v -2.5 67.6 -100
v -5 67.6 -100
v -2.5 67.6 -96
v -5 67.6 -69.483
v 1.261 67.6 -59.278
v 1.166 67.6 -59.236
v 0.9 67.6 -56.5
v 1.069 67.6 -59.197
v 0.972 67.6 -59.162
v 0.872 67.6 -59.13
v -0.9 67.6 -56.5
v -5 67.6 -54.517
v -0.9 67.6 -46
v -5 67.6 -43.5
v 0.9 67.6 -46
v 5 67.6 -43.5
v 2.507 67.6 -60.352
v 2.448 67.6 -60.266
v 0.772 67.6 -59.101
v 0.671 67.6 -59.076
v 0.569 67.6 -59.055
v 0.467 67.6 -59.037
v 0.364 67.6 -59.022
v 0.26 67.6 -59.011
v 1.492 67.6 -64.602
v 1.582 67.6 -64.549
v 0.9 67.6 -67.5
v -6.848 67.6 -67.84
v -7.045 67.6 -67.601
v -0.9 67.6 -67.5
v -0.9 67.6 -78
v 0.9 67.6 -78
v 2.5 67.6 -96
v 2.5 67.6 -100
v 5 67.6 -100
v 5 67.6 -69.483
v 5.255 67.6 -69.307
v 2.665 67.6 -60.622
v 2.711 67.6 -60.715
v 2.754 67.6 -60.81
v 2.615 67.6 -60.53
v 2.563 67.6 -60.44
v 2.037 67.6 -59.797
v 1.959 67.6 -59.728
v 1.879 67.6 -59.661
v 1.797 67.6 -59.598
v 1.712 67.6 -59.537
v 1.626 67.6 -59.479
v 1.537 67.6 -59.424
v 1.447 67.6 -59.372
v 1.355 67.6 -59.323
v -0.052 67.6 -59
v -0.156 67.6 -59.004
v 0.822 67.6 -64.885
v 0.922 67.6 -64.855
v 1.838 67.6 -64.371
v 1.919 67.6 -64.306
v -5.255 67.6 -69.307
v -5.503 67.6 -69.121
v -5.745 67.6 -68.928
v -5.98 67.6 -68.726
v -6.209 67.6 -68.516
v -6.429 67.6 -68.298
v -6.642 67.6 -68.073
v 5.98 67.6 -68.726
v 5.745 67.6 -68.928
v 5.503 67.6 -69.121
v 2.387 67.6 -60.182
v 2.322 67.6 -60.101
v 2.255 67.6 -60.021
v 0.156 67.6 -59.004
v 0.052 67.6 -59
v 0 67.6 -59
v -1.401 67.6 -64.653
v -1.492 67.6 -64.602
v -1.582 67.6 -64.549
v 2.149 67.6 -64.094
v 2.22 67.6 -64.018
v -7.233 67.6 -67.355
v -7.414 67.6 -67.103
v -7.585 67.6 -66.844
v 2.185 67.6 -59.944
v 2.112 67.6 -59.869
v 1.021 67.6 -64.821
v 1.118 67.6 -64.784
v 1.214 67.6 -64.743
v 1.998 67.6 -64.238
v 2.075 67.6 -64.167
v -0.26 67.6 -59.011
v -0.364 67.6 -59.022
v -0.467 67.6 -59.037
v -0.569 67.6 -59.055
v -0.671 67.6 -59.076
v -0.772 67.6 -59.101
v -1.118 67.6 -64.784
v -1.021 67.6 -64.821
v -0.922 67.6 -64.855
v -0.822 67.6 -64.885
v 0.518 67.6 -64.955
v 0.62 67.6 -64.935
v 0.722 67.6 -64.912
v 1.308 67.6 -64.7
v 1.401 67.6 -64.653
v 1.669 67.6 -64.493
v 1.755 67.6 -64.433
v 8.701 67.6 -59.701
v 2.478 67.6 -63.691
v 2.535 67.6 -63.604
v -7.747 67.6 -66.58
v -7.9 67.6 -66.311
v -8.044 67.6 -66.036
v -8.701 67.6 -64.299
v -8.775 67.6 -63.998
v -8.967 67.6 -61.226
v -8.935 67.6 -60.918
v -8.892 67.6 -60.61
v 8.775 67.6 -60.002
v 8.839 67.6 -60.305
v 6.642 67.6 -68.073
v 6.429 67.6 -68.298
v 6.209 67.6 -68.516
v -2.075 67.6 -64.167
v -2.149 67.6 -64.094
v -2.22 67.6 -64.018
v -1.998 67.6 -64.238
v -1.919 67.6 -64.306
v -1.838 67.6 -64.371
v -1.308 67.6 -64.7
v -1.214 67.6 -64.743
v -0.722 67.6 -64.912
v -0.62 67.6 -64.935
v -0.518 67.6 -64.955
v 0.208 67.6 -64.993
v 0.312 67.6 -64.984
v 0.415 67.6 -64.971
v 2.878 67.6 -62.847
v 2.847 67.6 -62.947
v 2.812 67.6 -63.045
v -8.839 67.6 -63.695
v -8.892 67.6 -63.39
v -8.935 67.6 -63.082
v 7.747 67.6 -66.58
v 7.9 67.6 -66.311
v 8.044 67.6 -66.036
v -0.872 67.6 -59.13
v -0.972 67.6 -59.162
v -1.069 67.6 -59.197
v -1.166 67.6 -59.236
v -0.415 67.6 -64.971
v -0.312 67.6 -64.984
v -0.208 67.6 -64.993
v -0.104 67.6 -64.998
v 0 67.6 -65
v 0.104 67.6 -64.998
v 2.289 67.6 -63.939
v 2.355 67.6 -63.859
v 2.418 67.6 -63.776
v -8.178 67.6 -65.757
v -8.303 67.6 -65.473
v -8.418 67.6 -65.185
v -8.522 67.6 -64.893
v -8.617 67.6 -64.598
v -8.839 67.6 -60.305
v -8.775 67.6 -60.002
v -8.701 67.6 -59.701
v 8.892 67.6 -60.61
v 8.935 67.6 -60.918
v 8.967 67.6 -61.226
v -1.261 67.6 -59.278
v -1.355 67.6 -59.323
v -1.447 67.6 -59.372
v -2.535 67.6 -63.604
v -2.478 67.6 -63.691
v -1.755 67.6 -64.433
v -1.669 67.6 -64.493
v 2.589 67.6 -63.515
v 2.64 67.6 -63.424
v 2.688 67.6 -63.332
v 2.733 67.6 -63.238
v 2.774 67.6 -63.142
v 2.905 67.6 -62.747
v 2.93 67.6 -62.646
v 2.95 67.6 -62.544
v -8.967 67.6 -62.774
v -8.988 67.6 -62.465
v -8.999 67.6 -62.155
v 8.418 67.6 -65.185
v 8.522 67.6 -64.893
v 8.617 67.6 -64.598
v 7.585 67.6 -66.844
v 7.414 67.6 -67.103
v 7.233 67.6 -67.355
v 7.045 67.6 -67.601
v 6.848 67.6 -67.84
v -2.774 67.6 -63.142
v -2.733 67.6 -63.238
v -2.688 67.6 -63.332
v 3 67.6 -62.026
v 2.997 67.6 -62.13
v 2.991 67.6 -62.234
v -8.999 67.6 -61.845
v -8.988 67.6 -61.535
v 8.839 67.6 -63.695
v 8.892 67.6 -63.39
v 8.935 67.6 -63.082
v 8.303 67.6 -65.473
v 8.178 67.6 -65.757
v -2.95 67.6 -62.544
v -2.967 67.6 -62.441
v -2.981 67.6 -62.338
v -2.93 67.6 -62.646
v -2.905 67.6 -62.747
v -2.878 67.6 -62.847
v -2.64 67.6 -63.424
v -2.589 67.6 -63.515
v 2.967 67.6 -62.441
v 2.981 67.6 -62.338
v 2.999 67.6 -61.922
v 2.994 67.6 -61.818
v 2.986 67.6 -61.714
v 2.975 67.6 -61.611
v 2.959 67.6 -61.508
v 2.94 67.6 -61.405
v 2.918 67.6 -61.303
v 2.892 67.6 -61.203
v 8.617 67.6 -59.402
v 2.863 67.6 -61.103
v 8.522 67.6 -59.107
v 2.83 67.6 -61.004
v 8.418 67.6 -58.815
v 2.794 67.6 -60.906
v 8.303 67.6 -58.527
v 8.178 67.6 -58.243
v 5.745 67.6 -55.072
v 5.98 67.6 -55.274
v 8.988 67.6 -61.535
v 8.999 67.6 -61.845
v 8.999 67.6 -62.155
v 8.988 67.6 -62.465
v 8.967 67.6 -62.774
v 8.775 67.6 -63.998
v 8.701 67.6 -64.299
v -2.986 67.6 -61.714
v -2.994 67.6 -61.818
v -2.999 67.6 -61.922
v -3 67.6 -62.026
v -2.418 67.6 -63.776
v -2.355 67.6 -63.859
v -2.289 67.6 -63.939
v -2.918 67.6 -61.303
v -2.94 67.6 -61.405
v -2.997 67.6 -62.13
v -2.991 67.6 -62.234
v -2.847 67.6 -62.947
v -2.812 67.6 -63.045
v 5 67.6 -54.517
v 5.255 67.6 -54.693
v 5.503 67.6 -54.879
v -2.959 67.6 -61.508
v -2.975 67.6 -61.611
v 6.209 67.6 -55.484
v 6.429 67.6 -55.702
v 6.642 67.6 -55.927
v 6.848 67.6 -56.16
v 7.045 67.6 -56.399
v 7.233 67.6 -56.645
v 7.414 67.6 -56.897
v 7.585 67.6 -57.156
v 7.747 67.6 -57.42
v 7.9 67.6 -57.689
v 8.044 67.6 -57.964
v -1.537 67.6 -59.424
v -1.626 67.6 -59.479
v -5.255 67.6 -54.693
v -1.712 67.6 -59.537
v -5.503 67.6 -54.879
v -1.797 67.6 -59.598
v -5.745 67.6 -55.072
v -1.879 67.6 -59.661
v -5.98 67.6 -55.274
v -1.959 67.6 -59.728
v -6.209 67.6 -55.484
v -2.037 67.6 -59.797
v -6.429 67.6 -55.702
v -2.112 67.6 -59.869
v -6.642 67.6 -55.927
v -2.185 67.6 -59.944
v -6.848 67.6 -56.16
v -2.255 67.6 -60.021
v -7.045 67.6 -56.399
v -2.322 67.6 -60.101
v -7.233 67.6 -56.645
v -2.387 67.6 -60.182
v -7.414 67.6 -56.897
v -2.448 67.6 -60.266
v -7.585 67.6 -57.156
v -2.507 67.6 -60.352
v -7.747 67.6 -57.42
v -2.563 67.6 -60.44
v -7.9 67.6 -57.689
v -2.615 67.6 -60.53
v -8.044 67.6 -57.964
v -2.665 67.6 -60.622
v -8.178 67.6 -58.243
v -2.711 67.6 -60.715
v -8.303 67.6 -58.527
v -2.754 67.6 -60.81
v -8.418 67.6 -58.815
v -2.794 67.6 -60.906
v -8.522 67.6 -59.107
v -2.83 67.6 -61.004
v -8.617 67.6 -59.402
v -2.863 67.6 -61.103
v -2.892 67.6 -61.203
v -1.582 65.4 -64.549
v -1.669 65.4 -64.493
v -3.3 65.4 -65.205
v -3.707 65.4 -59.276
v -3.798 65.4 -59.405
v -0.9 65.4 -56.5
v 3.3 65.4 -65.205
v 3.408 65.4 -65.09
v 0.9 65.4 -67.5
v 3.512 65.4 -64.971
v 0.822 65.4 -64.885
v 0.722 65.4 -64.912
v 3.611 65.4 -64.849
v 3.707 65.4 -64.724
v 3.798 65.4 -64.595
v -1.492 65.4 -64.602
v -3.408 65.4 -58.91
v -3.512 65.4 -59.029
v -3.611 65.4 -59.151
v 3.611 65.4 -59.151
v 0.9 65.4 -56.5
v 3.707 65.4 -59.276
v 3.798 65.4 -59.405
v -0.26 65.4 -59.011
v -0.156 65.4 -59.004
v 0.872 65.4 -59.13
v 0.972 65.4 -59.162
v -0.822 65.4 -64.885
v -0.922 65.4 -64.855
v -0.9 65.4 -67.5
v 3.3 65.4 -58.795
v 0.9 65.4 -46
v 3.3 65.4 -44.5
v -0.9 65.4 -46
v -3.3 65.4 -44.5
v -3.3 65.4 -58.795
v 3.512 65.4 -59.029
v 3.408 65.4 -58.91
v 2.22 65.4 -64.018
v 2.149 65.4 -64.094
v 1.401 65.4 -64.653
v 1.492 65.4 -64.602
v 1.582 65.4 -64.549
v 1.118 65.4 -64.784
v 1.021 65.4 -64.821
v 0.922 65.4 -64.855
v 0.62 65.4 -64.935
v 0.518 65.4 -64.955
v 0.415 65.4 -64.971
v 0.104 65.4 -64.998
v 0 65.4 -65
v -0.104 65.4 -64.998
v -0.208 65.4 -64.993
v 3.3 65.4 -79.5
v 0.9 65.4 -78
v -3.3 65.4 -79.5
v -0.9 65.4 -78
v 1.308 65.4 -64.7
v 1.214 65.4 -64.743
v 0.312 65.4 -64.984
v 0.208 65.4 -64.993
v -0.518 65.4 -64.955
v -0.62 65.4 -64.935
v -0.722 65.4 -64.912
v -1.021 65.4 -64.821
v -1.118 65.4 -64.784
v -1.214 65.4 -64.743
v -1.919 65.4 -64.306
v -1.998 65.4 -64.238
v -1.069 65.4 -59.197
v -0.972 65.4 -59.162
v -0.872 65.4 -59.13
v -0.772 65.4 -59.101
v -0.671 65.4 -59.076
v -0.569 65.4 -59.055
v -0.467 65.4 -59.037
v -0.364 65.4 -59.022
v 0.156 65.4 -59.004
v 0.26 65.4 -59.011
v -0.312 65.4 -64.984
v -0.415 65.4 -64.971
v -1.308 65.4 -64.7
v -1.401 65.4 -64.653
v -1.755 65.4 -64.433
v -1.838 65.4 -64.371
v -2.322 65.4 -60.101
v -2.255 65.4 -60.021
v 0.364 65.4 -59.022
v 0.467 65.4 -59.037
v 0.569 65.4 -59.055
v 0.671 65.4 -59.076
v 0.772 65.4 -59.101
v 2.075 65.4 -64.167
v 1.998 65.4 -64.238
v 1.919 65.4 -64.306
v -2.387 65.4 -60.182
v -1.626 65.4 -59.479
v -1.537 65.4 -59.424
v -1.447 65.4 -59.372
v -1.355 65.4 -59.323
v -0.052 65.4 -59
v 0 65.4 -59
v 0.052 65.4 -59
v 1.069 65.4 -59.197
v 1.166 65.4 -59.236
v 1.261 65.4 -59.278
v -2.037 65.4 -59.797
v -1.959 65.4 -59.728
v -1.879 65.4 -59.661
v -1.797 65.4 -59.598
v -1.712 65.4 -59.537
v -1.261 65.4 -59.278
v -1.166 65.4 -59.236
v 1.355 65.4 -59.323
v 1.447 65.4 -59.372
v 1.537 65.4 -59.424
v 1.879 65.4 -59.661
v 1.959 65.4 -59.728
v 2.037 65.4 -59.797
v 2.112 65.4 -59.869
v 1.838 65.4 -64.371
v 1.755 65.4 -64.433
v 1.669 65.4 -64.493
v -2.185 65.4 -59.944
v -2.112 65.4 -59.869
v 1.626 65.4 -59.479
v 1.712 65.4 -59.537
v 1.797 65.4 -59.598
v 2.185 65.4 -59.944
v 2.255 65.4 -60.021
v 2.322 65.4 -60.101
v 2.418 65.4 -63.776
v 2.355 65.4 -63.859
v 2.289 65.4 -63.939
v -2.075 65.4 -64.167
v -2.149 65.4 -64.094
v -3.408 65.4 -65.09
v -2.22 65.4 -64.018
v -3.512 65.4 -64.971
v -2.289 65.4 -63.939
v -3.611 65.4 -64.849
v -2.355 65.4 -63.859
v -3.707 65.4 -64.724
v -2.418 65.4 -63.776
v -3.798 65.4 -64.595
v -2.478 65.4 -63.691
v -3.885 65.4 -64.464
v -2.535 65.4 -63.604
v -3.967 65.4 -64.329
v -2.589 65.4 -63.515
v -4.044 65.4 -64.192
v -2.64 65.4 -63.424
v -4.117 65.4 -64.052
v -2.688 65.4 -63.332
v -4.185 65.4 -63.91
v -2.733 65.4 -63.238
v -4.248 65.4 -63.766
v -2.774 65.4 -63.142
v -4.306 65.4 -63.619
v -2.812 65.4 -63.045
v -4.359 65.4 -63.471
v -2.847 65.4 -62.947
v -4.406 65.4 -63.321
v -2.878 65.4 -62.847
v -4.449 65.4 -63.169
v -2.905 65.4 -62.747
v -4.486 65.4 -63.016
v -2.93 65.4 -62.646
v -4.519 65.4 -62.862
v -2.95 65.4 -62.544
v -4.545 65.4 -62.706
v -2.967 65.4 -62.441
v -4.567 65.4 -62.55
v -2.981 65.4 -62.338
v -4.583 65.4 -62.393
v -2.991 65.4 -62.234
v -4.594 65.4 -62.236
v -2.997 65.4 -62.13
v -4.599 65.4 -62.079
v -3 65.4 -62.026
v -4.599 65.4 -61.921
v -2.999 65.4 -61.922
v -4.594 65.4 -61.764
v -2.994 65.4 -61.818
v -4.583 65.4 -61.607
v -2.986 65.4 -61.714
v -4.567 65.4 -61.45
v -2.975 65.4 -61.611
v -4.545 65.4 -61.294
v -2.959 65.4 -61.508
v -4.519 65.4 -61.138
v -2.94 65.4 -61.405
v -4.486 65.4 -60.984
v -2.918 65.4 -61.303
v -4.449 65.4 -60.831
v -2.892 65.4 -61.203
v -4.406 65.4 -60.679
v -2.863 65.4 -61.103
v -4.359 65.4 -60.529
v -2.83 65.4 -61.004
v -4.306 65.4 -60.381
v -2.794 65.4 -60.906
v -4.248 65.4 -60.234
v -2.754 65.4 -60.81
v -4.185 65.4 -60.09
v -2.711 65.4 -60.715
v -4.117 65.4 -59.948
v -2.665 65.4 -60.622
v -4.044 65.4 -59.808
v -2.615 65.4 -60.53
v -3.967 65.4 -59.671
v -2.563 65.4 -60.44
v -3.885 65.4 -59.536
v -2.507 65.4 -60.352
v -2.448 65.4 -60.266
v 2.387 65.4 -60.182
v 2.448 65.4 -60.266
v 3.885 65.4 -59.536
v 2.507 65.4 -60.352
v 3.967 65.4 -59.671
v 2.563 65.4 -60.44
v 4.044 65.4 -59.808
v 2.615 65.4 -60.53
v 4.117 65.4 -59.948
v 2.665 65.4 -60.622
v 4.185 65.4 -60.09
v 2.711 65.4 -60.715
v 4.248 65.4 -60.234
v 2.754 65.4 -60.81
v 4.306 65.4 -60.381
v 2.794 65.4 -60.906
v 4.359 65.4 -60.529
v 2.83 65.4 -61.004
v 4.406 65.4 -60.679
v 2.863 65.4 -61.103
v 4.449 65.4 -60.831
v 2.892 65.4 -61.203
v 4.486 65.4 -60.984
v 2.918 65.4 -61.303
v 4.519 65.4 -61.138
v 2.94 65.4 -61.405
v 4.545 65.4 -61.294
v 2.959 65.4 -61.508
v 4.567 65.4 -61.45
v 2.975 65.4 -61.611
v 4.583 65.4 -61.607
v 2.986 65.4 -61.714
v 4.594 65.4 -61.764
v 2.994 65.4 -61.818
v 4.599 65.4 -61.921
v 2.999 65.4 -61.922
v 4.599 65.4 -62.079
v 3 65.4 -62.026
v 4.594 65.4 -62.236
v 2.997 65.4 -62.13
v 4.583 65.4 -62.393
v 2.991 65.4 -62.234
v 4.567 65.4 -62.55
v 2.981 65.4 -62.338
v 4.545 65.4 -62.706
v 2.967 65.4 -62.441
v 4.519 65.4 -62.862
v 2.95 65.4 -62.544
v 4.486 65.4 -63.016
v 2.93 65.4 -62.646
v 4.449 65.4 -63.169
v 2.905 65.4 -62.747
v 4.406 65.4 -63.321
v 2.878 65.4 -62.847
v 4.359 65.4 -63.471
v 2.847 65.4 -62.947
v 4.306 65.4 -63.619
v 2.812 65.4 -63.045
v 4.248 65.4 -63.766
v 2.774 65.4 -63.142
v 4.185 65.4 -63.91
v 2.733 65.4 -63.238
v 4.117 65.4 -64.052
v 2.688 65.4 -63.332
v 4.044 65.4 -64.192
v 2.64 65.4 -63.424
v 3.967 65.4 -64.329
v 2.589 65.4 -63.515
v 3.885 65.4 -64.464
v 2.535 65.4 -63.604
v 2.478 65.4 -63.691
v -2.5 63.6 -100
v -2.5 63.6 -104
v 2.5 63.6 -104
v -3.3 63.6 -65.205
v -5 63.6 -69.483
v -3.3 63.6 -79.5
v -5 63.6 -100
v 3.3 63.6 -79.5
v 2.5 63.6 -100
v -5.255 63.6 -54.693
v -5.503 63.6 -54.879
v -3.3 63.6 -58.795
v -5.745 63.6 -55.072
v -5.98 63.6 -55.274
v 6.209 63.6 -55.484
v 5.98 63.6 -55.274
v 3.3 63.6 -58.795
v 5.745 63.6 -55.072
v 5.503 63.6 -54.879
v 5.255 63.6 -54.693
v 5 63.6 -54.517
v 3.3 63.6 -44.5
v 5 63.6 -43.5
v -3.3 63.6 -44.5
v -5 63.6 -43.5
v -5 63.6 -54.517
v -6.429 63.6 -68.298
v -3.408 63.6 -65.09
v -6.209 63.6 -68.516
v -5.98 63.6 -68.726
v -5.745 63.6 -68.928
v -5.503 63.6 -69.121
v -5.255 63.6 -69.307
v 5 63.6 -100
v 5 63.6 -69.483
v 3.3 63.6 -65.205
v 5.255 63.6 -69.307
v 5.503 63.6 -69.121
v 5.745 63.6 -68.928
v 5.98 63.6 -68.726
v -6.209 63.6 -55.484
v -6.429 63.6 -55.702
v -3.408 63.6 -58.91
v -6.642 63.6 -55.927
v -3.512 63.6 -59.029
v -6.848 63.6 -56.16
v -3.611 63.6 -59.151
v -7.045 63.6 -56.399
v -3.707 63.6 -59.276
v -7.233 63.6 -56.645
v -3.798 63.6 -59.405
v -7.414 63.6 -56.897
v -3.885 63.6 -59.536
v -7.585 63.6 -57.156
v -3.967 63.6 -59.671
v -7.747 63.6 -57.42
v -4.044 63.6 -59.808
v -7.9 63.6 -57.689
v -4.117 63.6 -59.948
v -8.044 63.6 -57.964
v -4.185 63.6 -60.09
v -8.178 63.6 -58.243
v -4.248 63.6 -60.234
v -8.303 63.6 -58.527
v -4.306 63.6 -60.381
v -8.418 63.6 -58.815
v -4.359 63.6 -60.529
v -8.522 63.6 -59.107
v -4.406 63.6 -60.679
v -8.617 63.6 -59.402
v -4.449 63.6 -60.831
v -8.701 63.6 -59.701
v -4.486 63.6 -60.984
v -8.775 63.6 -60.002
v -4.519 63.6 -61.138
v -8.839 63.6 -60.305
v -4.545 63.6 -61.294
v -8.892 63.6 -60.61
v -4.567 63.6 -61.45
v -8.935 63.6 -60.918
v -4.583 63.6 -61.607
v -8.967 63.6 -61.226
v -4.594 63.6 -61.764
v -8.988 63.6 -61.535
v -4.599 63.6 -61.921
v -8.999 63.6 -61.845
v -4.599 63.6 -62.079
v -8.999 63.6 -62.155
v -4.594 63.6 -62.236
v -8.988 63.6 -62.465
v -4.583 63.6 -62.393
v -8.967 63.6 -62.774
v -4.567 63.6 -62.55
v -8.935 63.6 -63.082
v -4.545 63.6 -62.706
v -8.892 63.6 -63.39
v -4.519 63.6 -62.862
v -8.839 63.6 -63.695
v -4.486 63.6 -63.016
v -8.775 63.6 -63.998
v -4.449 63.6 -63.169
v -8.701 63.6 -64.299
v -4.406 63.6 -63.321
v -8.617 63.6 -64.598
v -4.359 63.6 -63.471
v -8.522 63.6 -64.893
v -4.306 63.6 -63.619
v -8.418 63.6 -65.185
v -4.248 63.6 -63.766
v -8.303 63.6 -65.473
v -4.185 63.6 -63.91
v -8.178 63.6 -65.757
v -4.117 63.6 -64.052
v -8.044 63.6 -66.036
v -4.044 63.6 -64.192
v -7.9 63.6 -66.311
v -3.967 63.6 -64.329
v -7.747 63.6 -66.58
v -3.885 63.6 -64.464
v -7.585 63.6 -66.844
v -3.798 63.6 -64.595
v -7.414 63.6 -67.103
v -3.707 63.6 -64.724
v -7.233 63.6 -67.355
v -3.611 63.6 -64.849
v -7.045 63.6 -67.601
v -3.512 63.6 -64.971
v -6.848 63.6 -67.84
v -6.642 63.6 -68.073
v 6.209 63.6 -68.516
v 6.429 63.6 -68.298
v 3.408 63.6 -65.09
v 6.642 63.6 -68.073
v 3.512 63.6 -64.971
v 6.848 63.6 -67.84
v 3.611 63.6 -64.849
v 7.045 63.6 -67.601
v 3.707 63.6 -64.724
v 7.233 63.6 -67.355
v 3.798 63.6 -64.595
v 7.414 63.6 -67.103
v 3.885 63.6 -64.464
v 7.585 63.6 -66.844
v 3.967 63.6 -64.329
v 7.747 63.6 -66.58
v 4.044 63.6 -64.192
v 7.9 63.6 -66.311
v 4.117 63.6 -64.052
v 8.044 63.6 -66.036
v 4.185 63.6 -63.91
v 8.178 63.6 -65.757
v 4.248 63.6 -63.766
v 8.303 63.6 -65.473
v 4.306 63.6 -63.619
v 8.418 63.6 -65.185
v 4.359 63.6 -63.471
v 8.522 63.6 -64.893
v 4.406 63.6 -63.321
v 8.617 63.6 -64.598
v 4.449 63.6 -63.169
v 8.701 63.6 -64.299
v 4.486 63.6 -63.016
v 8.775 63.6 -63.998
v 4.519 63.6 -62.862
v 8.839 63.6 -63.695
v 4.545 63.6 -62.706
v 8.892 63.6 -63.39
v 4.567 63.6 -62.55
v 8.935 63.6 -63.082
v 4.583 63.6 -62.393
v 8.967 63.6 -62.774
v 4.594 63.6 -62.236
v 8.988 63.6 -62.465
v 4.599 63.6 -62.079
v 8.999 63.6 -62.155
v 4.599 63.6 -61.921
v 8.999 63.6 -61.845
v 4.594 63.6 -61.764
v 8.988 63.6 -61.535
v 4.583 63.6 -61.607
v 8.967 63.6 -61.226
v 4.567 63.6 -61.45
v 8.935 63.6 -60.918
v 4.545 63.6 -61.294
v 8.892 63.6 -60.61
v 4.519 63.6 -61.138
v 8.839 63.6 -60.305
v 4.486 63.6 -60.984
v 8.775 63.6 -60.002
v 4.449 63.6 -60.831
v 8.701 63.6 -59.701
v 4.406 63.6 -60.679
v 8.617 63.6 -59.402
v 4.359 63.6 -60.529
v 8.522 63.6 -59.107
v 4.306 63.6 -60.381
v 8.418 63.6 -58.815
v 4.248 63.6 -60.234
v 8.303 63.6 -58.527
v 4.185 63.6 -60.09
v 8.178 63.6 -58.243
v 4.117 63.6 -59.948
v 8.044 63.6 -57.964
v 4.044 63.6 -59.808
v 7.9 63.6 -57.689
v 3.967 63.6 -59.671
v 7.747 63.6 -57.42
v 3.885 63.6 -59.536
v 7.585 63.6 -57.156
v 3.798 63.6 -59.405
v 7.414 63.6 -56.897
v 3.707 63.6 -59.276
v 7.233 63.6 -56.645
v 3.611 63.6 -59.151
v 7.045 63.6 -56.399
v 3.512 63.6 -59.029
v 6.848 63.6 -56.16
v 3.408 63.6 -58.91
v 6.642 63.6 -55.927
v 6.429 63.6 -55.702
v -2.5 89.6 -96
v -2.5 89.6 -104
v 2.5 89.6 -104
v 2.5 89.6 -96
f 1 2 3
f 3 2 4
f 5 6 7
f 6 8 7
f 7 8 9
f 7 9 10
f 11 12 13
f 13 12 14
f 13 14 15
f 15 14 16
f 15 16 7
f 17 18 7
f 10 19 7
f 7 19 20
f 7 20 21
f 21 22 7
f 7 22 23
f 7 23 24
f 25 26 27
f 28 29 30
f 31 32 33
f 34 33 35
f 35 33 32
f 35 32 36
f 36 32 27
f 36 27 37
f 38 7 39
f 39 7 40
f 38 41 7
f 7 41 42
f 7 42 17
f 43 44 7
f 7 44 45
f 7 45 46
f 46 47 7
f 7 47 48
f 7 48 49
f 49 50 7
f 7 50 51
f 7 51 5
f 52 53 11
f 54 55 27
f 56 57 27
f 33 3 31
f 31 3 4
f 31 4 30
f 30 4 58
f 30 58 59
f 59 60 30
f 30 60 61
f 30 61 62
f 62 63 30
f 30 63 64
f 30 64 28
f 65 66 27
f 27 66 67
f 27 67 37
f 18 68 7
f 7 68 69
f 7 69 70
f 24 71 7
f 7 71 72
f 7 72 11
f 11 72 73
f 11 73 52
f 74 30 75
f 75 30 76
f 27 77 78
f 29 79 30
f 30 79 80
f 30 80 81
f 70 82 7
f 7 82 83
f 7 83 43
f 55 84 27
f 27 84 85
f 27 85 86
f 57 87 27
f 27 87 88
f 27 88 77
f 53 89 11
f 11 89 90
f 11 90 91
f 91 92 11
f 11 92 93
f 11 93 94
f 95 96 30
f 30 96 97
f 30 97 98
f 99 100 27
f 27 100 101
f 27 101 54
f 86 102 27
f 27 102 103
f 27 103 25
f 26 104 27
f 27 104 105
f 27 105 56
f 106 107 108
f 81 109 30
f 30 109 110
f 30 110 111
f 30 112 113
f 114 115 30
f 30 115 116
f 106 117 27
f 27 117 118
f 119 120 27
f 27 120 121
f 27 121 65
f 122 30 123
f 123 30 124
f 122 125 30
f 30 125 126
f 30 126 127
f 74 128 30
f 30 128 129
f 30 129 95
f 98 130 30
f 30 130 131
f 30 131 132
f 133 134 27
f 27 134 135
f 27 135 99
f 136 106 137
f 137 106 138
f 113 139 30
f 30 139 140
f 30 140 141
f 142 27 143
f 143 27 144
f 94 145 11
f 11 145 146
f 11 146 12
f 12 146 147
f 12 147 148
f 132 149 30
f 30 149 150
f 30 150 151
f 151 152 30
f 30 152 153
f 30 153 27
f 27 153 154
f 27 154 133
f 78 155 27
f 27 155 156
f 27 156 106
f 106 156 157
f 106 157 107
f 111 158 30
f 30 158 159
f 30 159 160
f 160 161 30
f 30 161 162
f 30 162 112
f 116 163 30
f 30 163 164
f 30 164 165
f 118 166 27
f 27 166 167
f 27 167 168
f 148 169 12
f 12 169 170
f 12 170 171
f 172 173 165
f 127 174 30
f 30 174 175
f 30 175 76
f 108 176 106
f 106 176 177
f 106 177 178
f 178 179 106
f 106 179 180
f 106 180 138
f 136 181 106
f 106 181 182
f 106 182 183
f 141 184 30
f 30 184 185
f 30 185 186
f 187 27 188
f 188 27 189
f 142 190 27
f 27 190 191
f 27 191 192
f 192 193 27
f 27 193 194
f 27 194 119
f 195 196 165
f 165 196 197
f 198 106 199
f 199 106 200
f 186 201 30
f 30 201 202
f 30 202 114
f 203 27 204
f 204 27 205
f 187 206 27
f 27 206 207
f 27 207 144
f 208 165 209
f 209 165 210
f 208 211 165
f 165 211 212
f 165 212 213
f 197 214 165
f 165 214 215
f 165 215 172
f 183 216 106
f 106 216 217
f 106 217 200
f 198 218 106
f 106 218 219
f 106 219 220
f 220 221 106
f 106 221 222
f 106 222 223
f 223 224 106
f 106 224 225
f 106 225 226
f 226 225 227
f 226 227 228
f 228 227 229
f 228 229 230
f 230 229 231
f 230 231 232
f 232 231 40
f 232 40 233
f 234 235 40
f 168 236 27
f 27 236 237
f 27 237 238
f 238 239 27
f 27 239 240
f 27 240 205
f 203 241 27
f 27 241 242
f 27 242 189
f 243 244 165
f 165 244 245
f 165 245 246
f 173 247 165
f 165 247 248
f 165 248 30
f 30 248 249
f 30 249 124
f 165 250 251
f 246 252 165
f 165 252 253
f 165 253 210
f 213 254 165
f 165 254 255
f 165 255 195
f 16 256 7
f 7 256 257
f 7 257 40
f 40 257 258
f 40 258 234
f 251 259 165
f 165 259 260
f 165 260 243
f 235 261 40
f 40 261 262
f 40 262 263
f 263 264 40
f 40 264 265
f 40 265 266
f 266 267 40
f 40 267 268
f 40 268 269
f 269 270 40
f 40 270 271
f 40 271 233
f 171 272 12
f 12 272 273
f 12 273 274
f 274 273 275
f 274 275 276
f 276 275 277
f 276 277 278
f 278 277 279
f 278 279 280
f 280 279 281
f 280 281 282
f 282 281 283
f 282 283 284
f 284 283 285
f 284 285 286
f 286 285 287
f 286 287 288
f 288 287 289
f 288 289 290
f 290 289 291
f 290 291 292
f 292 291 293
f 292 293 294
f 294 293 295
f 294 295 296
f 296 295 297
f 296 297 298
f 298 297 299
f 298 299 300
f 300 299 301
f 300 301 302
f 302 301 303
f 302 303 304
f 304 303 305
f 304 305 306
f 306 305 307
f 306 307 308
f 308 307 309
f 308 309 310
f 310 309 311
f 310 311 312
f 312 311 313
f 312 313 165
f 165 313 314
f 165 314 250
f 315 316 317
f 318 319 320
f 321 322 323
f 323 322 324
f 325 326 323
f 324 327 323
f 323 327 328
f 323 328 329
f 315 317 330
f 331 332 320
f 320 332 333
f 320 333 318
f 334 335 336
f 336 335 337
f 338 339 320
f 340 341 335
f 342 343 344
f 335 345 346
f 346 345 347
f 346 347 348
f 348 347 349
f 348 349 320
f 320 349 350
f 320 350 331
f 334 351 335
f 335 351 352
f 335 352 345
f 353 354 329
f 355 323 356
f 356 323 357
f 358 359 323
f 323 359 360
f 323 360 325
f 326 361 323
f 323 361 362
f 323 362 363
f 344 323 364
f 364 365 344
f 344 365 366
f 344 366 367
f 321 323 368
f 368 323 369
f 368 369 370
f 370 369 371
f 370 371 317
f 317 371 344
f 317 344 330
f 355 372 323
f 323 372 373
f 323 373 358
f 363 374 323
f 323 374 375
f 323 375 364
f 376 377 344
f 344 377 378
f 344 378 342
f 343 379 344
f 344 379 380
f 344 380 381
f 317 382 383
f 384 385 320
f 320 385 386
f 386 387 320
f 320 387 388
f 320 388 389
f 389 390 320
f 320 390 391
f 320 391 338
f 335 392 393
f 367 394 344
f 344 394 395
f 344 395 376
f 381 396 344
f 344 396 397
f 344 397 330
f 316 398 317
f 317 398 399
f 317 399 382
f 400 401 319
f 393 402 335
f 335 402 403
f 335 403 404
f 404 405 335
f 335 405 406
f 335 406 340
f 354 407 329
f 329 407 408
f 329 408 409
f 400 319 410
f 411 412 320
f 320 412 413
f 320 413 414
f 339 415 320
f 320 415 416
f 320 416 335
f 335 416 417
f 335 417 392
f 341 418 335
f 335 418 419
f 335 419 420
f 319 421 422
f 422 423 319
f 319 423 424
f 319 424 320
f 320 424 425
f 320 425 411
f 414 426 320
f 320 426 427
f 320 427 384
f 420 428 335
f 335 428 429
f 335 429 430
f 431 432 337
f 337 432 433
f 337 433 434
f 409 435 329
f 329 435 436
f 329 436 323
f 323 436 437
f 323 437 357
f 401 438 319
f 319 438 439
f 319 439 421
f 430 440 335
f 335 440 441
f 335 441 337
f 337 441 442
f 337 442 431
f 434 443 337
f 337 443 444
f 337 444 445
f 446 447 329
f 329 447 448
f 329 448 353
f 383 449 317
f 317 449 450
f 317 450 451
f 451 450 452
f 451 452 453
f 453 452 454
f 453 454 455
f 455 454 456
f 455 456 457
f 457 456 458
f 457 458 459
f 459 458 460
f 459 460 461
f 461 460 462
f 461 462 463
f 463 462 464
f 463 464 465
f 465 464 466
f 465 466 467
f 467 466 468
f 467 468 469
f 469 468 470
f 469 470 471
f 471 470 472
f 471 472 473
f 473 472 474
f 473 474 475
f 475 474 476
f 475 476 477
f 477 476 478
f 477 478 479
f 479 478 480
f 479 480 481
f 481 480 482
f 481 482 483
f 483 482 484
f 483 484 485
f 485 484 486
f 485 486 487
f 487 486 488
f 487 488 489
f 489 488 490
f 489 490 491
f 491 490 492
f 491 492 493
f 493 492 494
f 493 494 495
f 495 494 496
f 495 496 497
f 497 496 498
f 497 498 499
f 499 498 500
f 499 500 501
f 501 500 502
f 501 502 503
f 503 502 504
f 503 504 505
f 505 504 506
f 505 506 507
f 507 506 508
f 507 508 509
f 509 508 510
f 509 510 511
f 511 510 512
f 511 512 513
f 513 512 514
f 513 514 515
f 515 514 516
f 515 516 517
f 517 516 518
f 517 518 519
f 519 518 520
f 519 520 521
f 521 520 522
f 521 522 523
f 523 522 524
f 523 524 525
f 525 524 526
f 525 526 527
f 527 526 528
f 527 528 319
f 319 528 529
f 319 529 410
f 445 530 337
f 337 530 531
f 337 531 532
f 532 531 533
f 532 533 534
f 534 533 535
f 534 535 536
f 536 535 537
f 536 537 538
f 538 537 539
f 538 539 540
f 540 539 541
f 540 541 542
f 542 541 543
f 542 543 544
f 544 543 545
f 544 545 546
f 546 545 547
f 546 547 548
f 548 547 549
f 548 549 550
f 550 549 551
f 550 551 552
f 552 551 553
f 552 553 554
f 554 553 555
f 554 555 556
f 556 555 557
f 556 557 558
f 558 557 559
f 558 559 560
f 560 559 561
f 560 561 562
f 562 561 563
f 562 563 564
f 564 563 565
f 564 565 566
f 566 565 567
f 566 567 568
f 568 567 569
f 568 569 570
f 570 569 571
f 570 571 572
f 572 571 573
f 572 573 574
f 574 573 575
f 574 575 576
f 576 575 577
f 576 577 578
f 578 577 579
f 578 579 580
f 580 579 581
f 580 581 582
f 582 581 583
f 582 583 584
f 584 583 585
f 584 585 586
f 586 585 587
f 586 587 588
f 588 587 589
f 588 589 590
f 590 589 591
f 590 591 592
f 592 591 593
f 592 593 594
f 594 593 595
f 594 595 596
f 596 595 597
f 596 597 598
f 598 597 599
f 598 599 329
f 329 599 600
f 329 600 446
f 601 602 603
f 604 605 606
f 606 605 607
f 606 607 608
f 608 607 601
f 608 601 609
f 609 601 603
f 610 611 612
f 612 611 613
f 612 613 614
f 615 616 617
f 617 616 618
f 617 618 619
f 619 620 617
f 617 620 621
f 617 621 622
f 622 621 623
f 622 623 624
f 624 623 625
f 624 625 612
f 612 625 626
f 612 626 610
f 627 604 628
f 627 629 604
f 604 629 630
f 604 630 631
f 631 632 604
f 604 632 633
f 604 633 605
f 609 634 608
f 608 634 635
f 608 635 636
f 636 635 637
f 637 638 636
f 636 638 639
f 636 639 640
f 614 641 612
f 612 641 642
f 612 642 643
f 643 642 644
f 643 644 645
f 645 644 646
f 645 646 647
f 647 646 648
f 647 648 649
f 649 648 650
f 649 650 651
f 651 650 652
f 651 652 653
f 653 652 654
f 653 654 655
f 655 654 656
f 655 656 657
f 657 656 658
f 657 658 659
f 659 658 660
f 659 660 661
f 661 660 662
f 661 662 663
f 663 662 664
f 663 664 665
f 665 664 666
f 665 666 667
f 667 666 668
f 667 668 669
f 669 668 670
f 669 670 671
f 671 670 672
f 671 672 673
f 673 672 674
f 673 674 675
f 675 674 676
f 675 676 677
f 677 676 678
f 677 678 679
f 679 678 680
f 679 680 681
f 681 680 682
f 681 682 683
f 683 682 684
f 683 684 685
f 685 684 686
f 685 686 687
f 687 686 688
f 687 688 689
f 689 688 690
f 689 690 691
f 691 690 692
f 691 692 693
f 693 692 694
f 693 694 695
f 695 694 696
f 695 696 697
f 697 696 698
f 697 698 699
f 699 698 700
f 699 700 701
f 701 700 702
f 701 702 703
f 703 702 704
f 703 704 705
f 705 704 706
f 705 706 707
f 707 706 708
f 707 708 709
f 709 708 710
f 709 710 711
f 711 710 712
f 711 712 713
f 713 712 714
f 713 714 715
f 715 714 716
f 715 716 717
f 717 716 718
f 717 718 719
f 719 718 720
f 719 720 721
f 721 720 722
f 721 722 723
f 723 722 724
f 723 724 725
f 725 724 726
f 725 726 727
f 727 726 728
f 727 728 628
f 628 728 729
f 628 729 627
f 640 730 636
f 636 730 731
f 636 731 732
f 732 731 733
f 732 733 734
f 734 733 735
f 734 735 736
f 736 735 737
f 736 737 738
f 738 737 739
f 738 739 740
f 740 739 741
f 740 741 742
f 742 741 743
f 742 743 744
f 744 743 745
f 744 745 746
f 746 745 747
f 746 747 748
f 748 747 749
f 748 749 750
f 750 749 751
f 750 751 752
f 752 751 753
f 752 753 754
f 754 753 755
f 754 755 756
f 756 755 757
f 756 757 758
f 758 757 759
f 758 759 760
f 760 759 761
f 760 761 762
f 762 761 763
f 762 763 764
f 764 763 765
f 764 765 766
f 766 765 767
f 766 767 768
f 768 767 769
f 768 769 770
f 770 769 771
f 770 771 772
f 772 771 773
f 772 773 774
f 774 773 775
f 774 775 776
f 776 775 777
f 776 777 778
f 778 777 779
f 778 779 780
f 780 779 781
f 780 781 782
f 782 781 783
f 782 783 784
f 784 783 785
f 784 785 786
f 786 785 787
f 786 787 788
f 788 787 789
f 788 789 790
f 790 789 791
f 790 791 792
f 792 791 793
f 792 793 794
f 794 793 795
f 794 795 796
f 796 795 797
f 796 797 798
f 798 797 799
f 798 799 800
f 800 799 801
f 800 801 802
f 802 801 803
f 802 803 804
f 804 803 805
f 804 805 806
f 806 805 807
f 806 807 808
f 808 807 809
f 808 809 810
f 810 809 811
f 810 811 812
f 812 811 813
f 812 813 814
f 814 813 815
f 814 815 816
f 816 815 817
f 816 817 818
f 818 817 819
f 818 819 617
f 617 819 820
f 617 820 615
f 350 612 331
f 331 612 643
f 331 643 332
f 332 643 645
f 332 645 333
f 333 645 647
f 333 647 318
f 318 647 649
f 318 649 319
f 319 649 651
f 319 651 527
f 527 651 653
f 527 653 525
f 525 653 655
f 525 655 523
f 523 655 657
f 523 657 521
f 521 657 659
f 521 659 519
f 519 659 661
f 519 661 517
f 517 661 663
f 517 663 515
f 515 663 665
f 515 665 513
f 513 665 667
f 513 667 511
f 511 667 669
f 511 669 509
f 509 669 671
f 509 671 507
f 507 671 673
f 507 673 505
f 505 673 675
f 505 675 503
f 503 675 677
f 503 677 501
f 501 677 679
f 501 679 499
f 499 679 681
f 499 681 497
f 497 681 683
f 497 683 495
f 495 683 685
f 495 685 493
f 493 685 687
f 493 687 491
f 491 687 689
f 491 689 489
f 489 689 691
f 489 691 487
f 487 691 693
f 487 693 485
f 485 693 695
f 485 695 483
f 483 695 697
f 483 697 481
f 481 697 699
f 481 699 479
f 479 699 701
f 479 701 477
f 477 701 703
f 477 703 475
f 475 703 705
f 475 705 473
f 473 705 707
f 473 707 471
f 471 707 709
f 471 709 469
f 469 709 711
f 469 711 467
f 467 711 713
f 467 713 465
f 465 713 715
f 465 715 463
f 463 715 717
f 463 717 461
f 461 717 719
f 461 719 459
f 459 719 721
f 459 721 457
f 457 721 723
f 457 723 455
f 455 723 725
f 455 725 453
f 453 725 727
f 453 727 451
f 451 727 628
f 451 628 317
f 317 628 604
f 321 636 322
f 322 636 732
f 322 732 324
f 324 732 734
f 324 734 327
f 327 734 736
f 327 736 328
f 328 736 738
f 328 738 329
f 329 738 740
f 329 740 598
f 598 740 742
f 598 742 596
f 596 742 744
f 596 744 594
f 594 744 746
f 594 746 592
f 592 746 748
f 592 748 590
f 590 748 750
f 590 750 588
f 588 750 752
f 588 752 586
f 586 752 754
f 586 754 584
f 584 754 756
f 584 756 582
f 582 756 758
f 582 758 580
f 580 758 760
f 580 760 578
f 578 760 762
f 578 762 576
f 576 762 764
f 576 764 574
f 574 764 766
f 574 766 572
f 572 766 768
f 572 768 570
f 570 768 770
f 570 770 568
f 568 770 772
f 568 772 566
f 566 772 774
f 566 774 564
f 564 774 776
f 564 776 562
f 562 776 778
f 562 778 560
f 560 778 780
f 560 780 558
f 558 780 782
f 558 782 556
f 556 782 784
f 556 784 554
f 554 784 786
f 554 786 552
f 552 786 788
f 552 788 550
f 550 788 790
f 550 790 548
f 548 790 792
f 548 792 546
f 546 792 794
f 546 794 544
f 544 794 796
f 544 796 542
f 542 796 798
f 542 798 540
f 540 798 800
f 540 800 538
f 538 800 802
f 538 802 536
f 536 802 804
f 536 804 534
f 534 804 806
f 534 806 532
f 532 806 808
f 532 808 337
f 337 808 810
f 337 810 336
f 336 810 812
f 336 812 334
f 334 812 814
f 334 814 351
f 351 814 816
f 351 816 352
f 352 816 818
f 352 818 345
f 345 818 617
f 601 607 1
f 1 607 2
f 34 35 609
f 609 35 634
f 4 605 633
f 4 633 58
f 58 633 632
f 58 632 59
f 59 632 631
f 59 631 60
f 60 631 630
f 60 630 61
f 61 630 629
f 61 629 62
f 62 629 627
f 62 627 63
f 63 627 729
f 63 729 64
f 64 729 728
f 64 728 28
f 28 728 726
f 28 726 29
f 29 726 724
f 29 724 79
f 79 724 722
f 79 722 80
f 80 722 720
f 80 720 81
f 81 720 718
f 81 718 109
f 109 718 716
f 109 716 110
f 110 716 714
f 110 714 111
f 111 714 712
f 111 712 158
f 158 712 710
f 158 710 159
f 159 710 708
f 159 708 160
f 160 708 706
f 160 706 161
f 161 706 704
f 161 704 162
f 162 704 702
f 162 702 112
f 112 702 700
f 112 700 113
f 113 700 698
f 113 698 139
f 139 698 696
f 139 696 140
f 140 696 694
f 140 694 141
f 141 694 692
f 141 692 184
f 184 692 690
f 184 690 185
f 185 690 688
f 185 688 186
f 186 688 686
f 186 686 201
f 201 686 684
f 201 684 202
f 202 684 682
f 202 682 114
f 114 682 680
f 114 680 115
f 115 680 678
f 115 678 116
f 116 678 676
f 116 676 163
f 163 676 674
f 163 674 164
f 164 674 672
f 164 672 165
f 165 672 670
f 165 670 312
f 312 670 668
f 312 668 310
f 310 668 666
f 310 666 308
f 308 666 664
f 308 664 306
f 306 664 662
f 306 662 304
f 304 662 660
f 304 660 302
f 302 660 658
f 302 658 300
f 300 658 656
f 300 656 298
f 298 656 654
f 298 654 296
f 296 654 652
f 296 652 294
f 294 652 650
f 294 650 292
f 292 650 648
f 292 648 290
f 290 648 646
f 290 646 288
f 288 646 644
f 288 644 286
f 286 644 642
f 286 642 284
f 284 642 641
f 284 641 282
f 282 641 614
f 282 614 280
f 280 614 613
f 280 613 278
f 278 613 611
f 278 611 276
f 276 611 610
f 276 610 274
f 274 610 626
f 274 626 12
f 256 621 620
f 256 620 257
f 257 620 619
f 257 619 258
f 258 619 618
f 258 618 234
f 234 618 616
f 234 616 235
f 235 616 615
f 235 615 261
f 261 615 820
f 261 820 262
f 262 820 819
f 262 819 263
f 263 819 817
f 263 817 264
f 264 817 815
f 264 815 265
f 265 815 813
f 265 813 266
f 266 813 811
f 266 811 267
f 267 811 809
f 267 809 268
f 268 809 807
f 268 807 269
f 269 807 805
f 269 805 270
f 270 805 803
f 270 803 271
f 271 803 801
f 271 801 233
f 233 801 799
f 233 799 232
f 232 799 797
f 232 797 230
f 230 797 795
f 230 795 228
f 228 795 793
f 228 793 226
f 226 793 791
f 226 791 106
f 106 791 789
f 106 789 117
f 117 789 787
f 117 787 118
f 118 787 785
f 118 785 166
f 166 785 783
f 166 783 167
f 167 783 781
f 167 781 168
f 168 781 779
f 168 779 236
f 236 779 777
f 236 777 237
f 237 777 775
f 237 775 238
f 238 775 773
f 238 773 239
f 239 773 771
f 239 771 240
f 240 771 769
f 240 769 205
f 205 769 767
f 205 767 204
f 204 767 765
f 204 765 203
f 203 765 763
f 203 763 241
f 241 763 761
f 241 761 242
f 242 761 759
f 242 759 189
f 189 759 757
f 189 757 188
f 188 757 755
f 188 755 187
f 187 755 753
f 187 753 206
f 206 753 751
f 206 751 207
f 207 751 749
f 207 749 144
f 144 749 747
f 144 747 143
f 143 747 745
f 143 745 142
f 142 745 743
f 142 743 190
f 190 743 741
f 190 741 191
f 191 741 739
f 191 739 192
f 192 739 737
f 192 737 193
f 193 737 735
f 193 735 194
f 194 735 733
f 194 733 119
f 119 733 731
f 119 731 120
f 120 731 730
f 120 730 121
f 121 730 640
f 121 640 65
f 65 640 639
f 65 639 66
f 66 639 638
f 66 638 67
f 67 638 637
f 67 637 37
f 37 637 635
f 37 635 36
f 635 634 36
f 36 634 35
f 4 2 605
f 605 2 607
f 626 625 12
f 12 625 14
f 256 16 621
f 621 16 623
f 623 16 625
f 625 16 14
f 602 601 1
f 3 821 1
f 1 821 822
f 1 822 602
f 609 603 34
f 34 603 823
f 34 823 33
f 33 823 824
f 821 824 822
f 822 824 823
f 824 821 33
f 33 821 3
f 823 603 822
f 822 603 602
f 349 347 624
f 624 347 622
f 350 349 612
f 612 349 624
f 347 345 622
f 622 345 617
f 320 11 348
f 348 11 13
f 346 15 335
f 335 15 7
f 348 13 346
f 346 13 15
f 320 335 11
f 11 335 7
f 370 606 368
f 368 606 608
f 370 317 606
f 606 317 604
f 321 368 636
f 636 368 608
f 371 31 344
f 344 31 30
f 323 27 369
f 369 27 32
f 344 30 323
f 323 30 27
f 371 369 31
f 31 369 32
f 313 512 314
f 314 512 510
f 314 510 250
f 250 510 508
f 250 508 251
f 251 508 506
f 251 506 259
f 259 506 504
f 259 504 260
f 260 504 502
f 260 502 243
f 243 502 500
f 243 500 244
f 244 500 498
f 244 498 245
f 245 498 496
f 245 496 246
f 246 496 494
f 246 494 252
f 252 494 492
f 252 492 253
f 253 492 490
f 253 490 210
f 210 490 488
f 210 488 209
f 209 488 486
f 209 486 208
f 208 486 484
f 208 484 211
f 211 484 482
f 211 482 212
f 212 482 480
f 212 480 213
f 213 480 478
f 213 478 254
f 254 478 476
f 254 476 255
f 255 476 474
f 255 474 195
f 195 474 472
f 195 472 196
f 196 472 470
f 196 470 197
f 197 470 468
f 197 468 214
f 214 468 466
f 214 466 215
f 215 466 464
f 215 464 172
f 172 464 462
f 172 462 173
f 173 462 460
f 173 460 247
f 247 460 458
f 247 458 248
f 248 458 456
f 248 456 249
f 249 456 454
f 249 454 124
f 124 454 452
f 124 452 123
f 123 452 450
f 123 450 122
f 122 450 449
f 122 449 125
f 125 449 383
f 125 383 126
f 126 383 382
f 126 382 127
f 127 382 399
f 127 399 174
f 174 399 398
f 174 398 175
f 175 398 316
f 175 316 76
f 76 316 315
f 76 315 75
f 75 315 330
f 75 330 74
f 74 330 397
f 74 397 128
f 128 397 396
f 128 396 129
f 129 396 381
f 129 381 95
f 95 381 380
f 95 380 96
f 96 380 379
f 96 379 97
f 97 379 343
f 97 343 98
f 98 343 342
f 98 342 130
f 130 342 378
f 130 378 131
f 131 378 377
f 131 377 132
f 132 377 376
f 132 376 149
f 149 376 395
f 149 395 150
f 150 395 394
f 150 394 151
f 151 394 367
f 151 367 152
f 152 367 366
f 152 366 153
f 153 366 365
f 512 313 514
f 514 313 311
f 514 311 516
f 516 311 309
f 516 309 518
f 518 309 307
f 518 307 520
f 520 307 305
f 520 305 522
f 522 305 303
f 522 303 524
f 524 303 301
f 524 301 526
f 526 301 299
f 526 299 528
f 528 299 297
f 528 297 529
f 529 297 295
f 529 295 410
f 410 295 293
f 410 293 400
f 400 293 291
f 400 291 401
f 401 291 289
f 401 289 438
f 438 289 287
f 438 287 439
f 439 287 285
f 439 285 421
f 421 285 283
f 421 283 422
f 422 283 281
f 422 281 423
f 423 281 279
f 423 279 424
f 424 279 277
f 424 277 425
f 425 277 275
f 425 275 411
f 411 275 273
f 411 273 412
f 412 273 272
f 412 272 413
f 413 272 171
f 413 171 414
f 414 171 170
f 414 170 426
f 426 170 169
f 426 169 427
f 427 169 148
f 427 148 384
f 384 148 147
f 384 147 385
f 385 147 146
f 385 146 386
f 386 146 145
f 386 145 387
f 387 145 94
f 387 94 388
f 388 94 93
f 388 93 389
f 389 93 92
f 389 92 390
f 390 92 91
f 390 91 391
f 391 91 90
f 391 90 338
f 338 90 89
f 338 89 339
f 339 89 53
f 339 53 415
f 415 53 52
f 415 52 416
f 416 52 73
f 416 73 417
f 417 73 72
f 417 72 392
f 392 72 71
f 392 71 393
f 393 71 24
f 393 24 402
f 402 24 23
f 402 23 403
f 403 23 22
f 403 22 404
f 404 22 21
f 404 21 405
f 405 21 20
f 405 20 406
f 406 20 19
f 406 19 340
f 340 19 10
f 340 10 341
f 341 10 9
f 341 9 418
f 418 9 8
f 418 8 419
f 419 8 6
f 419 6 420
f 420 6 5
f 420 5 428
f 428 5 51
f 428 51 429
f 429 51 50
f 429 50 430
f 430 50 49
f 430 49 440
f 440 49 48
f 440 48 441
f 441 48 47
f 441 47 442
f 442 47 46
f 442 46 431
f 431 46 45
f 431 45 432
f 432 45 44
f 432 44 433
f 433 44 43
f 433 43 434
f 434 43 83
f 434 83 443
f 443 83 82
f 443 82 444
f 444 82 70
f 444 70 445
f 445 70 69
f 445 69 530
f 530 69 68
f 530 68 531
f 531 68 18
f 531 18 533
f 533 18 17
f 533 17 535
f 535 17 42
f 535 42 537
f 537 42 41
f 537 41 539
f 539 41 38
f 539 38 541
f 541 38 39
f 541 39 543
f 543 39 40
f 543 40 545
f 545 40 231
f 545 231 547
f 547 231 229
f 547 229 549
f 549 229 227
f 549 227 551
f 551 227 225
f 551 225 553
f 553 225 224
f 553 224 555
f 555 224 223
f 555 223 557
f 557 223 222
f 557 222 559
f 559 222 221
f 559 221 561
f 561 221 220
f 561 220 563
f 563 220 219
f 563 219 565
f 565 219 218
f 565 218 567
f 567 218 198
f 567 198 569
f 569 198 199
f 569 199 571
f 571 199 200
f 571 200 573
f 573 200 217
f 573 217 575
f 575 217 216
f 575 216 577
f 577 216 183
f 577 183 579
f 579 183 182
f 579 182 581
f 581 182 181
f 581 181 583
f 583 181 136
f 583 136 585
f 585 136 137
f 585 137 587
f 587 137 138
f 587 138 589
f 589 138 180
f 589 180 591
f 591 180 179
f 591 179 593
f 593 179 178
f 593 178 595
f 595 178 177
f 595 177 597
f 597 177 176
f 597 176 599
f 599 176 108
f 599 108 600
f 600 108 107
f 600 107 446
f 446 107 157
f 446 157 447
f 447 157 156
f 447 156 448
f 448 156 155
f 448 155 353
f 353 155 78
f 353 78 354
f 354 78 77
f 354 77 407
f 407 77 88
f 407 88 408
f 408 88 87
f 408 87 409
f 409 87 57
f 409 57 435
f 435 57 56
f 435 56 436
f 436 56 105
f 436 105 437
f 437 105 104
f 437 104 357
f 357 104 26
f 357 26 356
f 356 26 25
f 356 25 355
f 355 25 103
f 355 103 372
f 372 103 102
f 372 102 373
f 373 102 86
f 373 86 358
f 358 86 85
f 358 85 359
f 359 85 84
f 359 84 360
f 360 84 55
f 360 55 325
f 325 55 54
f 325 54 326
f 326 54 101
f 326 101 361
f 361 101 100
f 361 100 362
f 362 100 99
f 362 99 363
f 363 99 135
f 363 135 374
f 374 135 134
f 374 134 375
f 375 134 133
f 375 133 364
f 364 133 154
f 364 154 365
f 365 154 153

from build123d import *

# Parameters (mm, degrees)
BOSS_EXTRUDE1_START = 63.6
SKETCH1_R           = 9
BOSS_EXTRUDE1_DEPTH = 4
BOSS_EXTRUDE2_START = -100
SKETCH2_W           = 10
SKETCH2_H           = 4
BOSS_EXTRUDE2_DEPTH = 56.5
BOSS_EXTRUDE3_START = -104
SKETCH3_W           = 5
SKETCH3_H           = 26
BOSS_EXTRUDE3_DEPTH = 8
BOSS_EXTRUDE4_START = 63.1
SKETCH4_R           = 4.6
BOSS_EXTRUDE4_DEPTH = 2.3
BOSS_EXTRUDE5_START = -62
SKETCH5_W           = 6.6
SKETCH5_H           = 2.3
BOSS_EXTRUDE5_DEPTH = 17.5
BOSS_EXTRUDE6_START = -56.5
SKETCH6_W           = 1.8
SKETCH6_H           = 6
BOSS_EXTRUDE6_DEPTH = 10.5
BOSS_EXTRUDE7_START = -79.5
SKETCH7_W           = 6.6
SKETCH7_H           = 2.3
BOSS_EXTRUDE7_DEPTH = 17.5
BOSS_EXTRUDE8_START = -78
SKETCH8_W           = 1.8
SKETCH8_H           = 6
BOSS_EXTRUDE8_DEPTH = 10.5
BOSS_EXTRUDE9_START = 62.6
SKETCH9_R           = 3
BOSS_EXTRUDE9_DEPTH = 6


with BuildPart() as part:
    # Sketch1 → Boss-Extrude1 (new body)
    with BuildSketch(Plane(origin=(0, 0, 0), x_dir=(1, 0, 0), z_dir=(0, 1, 0)).offset(BOSS_EXTRUDE1_START)):
        with Locations(Location((0, 62, 0), (0, 0, 270))):
            Circle(SKETCH1_R)
    extrude(amount=BOSS_EXTRUDE1_DEPTH)

    # Sketch2 → Boss-Extrude2 (add)
    with BuildSketch(Plane.XY.offset(BOSS_EXTRUDE2_START)):
        with Locations((0, 65.6)):
            Rectangle(SKETCH2_W, SKETCH2_H)
    extrude(amount=BOSS_EXTRUDE2_DEPTH)

    # Sketch3 → Boss-Extrude3 (add)
    with BuildSketch(Plane.XY.offset(BOSS_EXTRUDE3_START)):
        with Locations((0, 76.6)):
            Rectangle(SKETCH3_W, SKETCH3_H)
    extrude(amount=BOSS_EXTRUDE3_DEPTH)


with BuildPart() as body_2:
    # Sketch4 → Boss-Extrude4 (new body)
    with BuildSketch(Plane(origin=(0, 0, 0), x_dir=(1, 0, 0), z_dir=(0, 1, 0)).offset(BOSS_EXTRUDE4_START)):
        with Locations(Location((0, 62, 0), (0, 0, 270))):
            Circle(SKETCH4_R)
    extrude(amount=BOSS_EXTRUDE4_DEPTH)


with BuildPart() as part_1:
    add(part.part)

    # Combine1: cut body 2
    add(body_2.part, mode=Mode.SUBTRACT)


with BuildPart() as body_2_2:
    # Sketch5 → Boss-Extrude5 (new body)
    with BuildSketch(Plane.XY.offset(BOSS_EXTRUDE5_START)):
        with Locations((0, 64.25)):
            Rectangle(SKETCH5_W, SKETCH5_H)
    extrude(amount=BOSS_EXTRUDE5_DEPTH)


with BuildPart() as part_2:
    add(part_1.part)

    # Combine2: cut body 2 2
    add(body_2_2.part, mode=Mode.SUBTRACT)


with BuildPart() as body_2_3:
    # Sketch6 → Boss-Extrude6 (new body)
    with BuildSketch(Plane.XY.offset(BOSS_EXTRUDE6_START)):
        with Locations((0, 65.6)):
            Rectangle(SKETCH6_W, SKETCH6_H)
    extrude(amount=BOSS_EXTRUDE6_DEPTH)


with BuildPart() as part_3:
    add(part_2.part)

    # Combine3: cut body 2 3
    add(body_2_3.part, mode=Mode.SUBTRACT)


with BuildPart() as body_2_4:
    # Sketch7 → Boss-Extrude7 (new body)
    with BuildSketch(Plane.XY.offset(BOSS_EXTRUDE7_START)):
        with Locations((0, 64.25)):
            Rectangle(SKETCH7_W, SKETCH7_H)
    extrude(amount=BOSS_EXTRUDE7_DEPTH)


with BuildPart() as part_4:
    add(part_3.part)

    # Combine4: cut body 2 4
    add(body_2_4.part, mode=Mode.SUBTRACT)


with BuildPart() as body_2_5:
    # Sketch8 → Boss-Extrude8 (new body)
    with BuildSketch(Plane.XY.offset(BOSS_EXTRUDE8_START)):
        with Locations((0, 65.6)):
            Rectangle(SKETCH8_W, SKETCH8_H)
    extrude(amount=BOSS_EXTRUDE8_DEPTH)


with BuildPart() as part_5:
    add(part_4.part)

    # Combine5: cut body 2 5
    add(body_2_5.part, mode=Mode.SUBTRACT)


with BuildPart() as body_2_6:
    # Sketch9 → Boss-Extrude9 (new body)
    with BuildSketch(Plane(origin=(0, 0, 0), x_dir=(1, 0, 0), z_dir=(0, 1, 0)).offset(BOSS_EXTRUDE9_START)):
        with Locations(Location((0, 62, 0), (0, 0, 270))):
            Circle(SKETCH9_R)
    extrude(amount=BOSS_EXTRUDE9_DEPTH)


with BuildPart() as part_6:
    add(part_5.part)

    # Combine6: cut body 2 6
    add(body_2_6.part, mode=Mode.SUBTRACT)


solid = part_6.part
